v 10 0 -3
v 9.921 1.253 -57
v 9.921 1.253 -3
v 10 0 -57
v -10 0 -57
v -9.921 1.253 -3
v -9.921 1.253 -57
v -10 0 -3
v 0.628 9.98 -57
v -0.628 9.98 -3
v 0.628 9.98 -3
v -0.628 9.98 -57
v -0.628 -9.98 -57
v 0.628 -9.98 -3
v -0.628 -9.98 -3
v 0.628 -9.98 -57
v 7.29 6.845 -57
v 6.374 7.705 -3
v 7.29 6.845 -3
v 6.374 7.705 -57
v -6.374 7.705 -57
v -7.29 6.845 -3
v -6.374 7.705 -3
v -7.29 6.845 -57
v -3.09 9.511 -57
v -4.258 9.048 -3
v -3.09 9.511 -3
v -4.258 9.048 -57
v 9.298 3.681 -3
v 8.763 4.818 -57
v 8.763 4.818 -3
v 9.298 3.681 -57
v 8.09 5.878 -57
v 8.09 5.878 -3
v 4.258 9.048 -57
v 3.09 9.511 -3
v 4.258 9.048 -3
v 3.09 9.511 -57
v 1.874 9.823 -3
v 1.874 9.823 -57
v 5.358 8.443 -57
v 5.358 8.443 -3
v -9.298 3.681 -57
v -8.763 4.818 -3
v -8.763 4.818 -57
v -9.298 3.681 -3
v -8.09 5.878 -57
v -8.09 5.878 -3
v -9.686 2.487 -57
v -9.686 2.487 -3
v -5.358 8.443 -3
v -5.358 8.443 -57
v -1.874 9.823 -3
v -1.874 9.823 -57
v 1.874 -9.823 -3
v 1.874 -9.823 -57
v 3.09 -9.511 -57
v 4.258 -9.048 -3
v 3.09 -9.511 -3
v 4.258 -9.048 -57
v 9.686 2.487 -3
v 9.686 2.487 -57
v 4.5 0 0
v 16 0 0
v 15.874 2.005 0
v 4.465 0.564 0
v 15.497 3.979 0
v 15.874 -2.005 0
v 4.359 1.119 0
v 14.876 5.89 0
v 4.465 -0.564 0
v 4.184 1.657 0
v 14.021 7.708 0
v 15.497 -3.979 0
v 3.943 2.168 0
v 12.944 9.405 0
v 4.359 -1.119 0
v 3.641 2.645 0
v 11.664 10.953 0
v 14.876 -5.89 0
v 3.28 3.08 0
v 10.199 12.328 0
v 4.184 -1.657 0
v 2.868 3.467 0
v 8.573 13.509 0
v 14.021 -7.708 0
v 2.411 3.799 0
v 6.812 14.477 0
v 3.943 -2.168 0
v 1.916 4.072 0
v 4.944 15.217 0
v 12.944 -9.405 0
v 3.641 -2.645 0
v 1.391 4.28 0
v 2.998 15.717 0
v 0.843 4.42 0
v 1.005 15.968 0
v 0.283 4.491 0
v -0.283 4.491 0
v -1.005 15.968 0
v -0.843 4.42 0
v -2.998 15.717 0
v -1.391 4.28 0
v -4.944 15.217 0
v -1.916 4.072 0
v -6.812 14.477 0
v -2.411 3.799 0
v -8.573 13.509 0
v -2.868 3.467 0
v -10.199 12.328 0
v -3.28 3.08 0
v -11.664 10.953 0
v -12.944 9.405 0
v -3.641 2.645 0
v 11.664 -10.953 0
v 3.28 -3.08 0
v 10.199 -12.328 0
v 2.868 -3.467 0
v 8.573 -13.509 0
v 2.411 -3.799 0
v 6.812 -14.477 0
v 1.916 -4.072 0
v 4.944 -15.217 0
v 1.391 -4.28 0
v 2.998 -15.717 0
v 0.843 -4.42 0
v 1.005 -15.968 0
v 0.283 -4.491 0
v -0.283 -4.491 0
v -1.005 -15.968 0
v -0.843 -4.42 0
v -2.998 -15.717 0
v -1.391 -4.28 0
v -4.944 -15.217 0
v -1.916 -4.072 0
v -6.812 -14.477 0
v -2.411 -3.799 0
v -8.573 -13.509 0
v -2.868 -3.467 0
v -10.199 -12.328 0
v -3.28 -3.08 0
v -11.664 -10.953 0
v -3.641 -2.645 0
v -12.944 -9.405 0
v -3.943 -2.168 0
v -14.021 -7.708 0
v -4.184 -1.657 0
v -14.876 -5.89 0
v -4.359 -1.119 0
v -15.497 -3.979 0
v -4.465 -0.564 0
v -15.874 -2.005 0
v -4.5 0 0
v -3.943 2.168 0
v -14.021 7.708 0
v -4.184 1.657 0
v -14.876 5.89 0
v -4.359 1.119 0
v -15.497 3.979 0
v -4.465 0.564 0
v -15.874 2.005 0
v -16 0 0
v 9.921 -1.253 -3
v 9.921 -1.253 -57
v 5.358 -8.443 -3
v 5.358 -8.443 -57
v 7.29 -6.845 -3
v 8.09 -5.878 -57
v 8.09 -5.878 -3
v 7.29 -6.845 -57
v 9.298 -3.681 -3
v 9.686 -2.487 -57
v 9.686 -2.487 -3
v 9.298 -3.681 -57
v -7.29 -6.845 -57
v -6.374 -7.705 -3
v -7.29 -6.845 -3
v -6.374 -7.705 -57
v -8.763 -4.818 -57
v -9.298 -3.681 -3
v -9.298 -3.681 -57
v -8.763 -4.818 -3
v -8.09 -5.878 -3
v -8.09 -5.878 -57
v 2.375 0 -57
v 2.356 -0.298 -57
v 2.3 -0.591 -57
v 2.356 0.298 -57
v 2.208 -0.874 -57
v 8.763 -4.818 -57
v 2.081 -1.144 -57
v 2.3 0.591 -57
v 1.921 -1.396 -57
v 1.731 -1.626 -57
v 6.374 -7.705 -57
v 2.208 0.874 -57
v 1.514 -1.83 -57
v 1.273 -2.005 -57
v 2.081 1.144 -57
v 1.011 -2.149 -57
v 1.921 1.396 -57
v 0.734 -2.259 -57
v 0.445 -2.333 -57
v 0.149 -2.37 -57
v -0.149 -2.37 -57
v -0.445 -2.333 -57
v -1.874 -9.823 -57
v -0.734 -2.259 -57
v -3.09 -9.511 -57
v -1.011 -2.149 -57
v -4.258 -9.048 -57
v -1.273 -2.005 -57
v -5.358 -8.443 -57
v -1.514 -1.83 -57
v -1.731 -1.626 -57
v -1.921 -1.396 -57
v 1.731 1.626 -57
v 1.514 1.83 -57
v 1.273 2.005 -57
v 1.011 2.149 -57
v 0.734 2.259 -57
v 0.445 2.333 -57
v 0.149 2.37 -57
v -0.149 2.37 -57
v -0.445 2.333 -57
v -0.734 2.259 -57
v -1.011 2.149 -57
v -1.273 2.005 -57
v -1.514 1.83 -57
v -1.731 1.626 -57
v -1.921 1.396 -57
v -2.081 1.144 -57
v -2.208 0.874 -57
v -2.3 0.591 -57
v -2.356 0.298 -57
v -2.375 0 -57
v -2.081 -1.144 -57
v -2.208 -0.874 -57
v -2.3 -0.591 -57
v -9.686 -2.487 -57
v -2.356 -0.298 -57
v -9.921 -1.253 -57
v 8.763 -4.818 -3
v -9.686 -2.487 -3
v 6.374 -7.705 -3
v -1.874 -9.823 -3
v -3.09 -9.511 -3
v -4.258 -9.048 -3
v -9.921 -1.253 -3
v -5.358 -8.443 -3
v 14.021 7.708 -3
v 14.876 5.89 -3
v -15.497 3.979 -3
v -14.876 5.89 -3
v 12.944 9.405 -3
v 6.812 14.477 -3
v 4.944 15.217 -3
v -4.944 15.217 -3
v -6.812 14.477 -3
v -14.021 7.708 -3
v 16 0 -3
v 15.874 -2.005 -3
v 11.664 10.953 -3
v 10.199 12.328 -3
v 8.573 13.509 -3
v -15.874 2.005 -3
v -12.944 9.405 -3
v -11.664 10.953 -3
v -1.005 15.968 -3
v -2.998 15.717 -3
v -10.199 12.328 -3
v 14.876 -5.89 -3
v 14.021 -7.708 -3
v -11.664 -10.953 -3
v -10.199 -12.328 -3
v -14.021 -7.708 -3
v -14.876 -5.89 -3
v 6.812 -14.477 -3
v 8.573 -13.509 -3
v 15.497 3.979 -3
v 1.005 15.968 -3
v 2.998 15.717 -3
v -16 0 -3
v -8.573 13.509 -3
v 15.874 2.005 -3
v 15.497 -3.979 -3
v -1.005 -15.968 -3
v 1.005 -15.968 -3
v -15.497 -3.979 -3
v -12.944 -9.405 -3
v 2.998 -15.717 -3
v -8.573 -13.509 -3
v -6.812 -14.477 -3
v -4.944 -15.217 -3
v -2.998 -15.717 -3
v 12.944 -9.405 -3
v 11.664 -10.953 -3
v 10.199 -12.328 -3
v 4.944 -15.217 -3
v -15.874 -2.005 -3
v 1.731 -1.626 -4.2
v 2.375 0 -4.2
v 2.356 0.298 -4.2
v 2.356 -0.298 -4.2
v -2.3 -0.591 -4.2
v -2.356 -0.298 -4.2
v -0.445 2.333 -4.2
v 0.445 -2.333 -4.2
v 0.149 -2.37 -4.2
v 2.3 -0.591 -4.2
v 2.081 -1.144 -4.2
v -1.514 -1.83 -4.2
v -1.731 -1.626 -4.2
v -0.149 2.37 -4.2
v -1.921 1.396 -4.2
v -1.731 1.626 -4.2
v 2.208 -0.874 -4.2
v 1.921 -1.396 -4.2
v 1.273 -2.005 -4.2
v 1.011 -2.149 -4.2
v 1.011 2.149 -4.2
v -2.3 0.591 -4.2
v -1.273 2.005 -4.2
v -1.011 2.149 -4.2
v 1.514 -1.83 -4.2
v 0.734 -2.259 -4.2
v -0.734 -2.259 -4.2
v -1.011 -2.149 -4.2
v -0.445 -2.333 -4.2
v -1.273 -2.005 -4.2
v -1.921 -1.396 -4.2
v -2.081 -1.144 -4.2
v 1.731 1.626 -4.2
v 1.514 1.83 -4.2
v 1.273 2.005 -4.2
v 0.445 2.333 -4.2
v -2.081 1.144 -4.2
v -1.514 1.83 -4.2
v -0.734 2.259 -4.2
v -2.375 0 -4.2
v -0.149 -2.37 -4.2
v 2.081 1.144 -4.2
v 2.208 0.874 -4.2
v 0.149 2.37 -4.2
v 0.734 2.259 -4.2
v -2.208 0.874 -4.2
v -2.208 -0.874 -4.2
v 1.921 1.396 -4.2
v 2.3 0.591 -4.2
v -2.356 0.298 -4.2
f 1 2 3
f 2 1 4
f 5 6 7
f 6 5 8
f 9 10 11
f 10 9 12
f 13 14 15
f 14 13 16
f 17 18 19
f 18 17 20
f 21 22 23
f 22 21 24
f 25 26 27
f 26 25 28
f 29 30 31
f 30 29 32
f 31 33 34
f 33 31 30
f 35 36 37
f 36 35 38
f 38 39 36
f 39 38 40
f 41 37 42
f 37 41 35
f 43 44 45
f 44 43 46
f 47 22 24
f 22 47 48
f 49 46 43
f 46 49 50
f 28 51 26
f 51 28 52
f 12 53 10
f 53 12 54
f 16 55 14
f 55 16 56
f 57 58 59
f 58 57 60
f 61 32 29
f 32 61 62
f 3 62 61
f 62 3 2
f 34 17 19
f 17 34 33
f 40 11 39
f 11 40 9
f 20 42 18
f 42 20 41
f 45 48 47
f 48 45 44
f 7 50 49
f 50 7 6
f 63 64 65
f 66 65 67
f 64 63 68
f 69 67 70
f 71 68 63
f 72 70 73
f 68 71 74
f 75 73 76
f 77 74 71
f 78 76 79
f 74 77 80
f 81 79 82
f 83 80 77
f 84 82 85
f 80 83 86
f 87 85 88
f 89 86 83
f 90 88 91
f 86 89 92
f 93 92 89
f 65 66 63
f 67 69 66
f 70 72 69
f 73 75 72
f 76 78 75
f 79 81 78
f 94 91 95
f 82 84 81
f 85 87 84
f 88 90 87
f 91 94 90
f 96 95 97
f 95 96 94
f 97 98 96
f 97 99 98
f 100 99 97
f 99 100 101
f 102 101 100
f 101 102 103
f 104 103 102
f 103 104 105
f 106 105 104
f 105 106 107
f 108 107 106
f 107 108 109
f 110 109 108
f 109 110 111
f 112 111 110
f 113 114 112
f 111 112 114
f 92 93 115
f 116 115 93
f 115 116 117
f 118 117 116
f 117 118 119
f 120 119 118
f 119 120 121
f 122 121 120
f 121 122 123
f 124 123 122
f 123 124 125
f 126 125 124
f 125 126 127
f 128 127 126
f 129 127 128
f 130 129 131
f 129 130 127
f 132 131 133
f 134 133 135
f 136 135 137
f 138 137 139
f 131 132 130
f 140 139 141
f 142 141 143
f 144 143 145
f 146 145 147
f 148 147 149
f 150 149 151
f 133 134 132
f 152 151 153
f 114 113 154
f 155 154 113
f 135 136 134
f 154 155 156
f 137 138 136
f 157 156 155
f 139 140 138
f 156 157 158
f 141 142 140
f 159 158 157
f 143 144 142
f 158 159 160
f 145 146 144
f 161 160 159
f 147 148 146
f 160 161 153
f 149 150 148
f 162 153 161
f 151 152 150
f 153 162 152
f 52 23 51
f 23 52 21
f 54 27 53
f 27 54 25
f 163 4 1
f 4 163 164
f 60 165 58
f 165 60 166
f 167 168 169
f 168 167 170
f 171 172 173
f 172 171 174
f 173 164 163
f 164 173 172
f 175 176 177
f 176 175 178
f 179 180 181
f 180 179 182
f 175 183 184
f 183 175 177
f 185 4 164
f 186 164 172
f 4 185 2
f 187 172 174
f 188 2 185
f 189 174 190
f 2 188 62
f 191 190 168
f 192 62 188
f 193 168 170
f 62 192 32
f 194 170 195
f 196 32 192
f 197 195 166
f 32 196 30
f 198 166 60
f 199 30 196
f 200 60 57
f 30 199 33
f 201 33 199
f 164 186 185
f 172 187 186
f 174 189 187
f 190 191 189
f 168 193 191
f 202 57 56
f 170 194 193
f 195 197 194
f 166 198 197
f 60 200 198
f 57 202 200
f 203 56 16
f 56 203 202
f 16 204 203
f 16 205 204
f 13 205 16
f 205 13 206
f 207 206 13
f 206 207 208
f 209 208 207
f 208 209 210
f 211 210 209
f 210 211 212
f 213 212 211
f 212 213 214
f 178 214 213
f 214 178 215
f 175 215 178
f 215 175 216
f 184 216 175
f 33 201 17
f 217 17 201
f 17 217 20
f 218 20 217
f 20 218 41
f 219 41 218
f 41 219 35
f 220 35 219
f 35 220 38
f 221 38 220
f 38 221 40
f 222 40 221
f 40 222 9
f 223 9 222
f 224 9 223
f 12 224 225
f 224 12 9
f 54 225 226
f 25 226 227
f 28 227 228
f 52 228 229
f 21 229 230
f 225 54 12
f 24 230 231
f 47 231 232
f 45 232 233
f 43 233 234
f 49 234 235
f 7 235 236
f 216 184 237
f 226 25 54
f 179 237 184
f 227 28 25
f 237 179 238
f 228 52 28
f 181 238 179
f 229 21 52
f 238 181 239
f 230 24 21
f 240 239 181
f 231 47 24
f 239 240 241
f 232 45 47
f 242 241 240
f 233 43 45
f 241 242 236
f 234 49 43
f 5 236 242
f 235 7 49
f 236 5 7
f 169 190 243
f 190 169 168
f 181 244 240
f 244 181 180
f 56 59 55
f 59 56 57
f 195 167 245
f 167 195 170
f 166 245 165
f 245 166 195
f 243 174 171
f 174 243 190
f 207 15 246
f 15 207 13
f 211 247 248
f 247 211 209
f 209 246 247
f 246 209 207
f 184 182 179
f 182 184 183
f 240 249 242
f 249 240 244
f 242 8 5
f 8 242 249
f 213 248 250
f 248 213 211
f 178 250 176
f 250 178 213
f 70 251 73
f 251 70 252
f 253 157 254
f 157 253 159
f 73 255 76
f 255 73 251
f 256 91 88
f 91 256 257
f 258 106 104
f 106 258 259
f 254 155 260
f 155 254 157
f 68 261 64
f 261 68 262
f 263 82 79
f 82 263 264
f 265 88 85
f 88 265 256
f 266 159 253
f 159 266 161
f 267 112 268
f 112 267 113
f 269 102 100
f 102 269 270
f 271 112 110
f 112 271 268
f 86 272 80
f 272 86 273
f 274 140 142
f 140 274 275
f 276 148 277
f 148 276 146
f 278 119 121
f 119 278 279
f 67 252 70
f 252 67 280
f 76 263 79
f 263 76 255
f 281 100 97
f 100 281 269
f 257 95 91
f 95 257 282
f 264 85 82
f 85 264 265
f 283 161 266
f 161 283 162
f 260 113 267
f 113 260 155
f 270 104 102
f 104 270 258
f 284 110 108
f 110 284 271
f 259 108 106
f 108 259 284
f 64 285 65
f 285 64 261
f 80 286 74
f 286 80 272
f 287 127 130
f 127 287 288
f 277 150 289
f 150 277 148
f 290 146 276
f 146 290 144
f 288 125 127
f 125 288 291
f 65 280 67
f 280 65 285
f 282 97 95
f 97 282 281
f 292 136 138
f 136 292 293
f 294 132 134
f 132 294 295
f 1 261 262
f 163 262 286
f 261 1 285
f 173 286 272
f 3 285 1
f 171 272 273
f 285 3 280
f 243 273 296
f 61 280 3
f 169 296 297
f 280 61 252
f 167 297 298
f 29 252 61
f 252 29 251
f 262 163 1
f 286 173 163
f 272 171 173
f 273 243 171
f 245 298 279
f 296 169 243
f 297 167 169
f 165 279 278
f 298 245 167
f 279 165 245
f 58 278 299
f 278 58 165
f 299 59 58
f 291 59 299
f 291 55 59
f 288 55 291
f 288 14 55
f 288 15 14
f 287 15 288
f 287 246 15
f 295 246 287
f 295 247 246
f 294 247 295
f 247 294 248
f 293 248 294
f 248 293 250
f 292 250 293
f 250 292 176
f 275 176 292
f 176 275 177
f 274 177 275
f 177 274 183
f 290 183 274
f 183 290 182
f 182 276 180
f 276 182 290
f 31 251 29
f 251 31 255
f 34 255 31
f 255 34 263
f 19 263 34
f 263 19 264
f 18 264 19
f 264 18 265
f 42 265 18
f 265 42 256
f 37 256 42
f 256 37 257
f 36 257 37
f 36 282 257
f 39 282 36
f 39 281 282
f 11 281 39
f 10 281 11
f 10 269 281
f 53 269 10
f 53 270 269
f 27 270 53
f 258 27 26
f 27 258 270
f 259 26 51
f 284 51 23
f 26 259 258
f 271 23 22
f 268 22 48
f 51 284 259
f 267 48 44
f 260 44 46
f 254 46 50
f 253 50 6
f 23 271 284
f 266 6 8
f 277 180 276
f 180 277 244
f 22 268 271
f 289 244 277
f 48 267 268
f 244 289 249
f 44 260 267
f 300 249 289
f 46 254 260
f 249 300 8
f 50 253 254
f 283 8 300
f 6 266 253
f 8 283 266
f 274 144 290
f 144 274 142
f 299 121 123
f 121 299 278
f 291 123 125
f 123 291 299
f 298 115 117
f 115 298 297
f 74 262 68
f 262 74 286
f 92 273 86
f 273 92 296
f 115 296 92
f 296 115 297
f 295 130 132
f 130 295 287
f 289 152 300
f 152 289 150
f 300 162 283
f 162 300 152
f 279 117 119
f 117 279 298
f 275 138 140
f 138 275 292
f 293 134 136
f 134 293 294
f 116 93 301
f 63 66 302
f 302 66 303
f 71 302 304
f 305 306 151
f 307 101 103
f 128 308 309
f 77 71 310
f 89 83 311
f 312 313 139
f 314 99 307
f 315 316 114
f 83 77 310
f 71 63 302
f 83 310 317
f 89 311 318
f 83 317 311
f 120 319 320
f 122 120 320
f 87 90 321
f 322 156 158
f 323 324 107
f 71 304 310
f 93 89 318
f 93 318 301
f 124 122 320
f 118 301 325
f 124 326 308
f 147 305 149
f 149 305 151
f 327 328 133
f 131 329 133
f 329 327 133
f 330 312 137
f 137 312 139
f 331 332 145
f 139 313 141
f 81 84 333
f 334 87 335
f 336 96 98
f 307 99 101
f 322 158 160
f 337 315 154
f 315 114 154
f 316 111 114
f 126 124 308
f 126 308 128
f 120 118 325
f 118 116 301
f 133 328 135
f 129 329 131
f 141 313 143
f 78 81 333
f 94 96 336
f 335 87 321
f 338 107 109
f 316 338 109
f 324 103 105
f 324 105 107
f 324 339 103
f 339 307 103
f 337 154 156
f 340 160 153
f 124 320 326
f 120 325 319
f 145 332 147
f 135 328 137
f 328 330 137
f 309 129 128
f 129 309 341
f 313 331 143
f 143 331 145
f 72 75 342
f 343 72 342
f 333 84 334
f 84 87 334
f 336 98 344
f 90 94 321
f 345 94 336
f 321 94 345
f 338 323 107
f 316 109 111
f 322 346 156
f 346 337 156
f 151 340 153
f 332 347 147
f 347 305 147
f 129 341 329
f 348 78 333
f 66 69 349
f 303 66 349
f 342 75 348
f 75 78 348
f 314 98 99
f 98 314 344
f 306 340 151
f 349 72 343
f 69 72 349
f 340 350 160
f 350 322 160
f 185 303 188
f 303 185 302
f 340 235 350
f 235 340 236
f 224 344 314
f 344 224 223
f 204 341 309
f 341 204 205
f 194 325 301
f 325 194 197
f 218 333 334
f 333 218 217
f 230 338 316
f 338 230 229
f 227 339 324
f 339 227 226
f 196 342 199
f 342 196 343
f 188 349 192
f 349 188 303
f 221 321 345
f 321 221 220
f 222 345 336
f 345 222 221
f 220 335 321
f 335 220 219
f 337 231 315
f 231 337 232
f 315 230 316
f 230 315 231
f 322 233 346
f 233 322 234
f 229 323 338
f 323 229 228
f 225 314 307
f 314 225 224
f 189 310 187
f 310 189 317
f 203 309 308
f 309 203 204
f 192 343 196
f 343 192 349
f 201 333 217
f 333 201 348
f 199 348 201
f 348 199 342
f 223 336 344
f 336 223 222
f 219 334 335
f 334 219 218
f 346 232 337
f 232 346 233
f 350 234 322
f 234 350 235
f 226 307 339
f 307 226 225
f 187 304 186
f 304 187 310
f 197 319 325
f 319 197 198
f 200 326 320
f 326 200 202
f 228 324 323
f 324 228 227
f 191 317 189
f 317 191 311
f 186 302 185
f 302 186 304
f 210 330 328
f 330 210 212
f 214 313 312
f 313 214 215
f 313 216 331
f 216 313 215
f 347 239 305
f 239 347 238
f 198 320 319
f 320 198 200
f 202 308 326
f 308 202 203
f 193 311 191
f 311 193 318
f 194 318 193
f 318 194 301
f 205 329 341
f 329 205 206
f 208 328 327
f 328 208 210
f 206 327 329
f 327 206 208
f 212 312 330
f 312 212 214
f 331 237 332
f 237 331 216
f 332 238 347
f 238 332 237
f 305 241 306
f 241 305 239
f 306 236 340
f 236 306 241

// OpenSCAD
$fn = 50;


difference() {
	union() {
		translate(v = [0, 0, -57.0000000000]) {
			cylinder(h = 57, r = 10.0000000000);
		}
		translate(v = [0, 0, -3.0000000000]) {
			cylinder(h = 3, r = 16.0000000000);
		}
	}
	union() {
		translate(v = [0, 0, 0]) {
			rotate(a = [0, 0, 0]) {
				difference() {
					union() {
						#translate(v = [0, 0, -57.0000000000]) {
							cylinder(h = 57, r = 2.2500000000);
						}
						#translate(v = [0, 0, -4.2000000000]) {
							cylinder(h = 4.2000000000, r1 = 2.3750000000, r2 = 4.5000000000);
						}
						#translate(v = [0, 0, -57.0000000000]) {
							cylinder(h = 57, r = 2.3750000000);
						}
						#translate(v = [0, 0, -57.0000000000]) {
							cylinder(h = 57, r = 2.2500000000);
						}
					}
					union();
				}
			}
		}
	}
}
